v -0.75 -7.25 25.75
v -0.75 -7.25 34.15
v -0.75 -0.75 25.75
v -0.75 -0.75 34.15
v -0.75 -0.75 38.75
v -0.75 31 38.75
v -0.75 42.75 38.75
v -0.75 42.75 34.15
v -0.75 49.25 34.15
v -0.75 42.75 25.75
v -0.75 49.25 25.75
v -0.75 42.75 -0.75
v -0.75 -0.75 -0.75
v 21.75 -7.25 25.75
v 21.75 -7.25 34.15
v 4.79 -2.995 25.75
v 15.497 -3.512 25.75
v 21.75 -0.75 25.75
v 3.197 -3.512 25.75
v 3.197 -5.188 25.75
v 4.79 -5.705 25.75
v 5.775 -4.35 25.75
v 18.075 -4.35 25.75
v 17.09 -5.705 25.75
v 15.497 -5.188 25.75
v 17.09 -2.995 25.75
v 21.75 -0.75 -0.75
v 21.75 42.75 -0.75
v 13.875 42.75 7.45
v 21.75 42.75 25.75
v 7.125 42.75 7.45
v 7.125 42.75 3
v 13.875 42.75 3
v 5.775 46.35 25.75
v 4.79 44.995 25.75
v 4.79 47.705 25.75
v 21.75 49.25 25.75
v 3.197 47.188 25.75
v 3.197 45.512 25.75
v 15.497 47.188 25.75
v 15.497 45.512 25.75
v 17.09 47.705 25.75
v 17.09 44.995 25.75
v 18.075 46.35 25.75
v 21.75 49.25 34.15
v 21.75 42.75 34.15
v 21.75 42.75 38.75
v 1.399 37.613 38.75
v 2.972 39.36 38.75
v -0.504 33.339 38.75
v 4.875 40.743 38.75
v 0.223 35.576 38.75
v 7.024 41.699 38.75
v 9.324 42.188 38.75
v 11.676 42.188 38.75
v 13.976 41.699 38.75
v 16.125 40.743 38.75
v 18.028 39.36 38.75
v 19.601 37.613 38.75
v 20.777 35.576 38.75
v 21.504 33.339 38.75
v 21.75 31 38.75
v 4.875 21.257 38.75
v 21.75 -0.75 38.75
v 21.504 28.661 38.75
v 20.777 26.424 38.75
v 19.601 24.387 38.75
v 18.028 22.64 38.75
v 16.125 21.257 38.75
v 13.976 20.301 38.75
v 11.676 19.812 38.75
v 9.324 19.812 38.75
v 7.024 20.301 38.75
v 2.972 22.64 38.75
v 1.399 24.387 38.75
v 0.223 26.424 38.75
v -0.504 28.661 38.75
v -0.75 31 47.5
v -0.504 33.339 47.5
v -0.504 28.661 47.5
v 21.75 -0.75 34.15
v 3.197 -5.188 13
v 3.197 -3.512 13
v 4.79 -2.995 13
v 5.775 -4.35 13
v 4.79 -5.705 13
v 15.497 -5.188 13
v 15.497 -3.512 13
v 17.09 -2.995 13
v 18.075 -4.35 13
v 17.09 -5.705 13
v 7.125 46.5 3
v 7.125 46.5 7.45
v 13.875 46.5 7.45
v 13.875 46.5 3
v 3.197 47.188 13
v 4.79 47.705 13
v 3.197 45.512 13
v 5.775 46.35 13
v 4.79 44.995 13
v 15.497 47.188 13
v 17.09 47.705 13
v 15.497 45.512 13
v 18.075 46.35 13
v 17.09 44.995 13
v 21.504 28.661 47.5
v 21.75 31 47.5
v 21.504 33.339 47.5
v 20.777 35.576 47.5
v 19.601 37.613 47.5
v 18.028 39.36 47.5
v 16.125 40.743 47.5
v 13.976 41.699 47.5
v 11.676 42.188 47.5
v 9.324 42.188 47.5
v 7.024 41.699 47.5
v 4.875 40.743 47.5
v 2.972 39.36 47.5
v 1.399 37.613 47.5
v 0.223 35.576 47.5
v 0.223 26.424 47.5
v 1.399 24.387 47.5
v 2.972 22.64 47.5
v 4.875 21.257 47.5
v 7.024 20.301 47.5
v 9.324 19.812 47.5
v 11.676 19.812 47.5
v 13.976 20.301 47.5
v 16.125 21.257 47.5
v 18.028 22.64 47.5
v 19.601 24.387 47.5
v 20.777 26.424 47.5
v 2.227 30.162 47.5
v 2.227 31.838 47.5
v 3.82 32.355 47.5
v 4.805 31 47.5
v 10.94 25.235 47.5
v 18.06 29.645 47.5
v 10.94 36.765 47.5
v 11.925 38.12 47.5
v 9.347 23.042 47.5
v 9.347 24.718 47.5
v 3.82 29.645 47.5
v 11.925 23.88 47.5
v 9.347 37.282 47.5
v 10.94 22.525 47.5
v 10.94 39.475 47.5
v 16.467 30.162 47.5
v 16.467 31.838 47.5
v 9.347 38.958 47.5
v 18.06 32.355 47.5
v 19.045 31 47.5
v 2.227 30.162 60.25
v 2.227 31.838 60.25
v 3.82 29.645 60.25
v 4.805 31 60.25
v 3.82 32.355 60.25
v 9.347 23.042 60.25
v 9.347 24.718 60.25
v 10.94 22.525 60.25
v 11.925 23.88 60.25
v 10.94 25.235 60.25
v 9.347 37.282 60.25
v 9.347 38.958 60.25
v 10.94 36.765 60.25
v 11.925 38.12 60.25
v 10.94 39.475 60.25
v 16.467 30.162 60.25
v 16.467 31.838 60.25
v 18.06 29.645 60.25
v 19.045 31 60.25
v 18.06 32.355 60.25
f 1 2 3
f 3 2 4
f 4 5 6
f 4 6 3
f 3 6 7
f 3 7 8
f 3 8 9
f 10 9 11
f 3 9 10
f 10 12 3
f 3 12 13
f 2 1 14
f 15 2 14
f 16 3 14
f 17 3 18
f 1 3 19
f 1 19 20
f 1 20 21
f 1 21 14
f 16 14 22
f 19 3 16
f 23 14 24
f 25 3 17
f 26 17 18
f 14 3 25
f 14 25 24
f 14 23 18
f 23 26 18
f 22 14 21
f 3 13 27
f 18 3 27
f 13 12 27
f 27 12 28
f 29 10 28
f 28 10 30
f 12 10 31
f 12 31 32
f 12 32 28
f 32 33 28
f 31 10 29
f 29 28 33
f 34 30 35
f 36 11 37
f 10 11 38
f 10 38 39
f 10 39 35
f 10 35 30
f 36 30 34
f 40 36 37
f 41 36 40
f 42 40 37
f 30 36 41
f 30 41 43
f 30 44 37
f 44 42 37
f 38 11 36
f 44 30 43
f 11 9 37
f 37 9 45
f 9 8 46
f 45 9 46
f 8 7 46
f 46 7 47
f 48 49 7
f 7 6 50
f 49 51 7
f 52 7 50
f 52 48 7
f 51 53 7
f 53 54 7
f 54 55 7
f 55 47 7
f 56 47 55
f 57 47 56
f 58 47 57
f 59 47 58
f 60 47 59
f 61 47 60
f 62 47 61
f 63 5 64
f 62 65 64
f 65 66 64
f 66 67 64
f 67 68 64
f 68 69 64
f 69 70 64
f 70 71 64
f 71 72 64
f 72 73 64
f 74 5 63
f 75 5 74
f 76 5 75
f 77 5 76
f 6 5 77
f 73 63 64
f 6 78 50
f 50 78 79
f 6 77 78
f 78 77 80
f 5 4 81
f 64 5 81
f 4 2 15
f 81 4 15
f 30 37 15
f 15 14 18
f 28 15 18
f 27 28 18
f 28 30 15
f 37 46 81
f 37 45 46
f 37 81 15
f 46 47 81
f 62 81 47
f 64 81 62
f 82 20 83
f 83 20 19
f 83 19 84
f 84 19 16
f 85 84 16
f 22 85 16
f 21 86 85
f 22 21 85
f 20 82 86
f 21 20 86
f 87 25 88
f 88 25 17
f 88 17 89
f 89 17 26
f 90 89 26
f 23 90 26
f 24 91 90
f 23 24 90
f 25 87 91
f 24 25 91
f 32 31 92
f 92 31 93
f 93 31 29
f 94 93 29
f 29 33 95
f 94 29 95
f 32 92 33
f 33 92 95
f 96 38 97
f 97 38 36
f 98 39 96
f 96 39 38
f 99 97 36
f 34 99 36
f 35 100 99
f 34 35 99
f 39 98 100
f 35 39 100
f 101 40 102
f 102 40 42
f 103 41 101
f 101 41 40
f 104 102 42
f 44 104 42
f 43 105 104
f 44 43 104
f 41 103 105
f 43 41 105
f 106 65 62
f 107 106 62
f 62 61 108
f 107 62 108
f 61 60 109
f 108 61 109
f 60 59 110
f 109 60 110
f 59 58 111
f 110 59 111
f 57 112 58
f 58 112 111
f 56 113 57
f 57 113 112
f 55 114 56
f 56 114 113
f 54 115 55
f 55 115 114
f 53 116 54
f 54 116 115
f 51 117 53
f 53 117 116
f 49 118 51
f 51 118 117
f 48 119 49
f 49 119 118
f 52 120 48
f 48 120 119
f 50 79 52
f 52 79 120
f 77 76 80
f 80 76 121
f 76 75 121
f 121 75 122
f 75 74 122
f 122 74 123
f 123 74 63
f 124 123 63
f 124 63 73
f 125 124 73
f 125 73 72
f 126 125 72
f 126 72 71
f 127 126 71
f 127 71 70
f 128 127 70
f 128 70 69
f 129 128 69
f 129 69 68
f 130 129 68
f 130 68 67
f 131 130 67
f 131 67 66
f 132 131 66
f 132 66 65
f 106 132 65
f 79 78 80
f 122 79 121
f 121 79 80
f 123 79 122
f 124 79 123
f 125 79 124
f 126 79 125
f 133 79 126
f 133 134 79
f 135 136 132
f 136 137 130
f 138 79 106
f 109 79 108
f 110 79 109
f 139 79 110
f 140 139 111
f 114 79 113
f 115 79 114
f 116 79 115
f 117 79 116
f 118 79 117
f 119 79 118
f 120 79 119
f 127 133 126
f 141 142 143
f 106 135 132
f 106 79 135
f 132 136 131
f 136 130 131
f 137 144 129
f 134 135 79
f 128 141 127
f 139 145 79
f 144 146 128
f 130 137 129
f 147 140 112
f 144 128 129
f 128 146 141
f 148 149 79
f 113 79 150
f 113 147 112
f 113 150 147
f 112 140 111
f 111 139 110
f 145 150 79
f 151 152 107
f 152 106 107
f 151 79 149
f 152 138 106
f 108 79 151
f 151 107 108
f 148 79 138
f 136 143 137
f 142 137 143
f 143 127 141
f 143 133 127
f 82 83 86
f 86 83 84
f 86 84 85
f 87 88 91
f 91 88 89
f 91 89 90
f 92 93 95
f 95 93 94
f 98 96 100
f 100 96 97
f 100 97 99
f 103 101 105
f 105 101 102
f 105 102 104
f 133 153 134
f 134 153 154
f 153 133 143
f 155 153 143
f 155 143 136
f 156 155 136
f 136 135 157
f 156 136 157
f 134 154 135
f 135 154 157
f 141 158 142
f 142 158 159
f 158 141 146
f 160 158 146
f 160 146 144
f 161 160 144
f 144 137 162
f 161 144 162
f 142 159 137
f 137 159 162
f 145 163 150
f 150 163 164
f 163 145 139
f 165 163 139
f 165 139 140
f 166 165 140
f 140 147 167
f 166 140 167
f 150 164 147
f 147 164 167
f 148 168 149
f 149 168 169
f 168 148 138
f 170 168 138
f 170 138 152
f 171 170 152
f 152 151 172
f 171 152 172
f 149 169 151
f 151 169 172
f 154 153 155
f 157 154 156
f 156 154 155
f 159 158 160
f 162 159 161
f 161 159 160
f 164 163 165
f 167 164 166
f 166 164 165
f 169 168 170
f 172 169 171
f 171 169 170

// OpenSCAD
//basic motor shape
height=38;
length=42;
thickness=21;

//wings for mounting
wingsheight=5.5;
wingslength=55;
wingsdist=26.5;
boltheadheight=1.4;

//cylinder on top of motor
cylinderheight=(46-38);
cylinderdiam=21;
cylinderdist=31;

//all bolts
boltheight=13.5;
boltdiam=2.1;

//body bolts
boltdist=4.35;

//cylinder bolts
cylboltdist2=3.5;
cylboltdist=7.12;

//hub for wires
hubheight=3.7;
hubwidth=6;
hublength=3;
hubdist=3;

//THIS IS THE TOLERANCE, THIS IS PROBABLY THE ONLY THING YOU WILL NEED TO ADJUST, IF THE HOLES ARE TOO SMALL, RAISE TOLERANCE, IF THEY ARE TOO BIG, LOWER TOLERANCE. IF THE HOLES DON'T LINE UP, THEN START CHANGING OTHER DIMENSIONS.
tolerance=.75;





//defining a bolt
module bolt()
{
	cylinder(boltheight+tolerance, (boltdiam+tolerance)/2, (boltdiam+tolerance)/2, 0);
}



//making the motor
module toleranceMotor()
{
	union()
	{

//basic motor shape
		translate([-tolerance, -tolerance, -tolerance])
		{
			cube([thickness+tolerance*2, length+tolerance*2, height+tolerance*2]);
		}

//wings for mounting
		translate([-tolerance, (-tolerance+((length-wingslength)/2)), wingsdist-tolerance])
		{
			cube([thickness+tolerance*2, wingslength+tolerance*2, wingsheight+tolerance*2+boltheadheight]);
		}

//cylinder on top of motor
		translate([cylinderdiam/2,cylinderdist,height])
		{
			cylinder(cylinderheight+tolerance*2, cylinderdiam/2+tolerance, cylinderdiam/2+tolerance, 0);

		}

//body bolts
		translate([boltdist,-boltdist,(wingsdist-boltheight)])
		{
			bolt();
		}
		
		translate([(thickness-boltdist),-boltdist,(wingsdist-boltheight)])
		{
			bolt();
		}

		translate([boltdist,(length+boltdist),(wingsdist-boltheight)])
		{
			bolt();
		}
		
		translate([(thickness-boltdist),(length+boltdist),(wingsdist-boltheight)])
		{
			bolt();
		}


//cylinder bolts
		translate([thickness/2,cylinderdist-cylboltdist,(height+cylinderheight)])
		{
			bolt();
		}

		translate([thickness/2,cylinderdist+cylboltdist,(height+cylinderheight)])
		{
			bolt();
		}

		translate([thickness/2+cylboltdist,cylinderdist,(height+cylinderheight)])
		{
			bolt();
		}

		translate([thickness/2-cylboltdist,cylinderdist,(height+cylinderheight)])
		{
			bolt();
		}

//hub for wires
		translate([(thickness-(hubwidth+tolerance))/2,(length+tolerance),hubdist])
		{
			cube([hubwidth+tolerance,hublength+tolerance,hubheight+tolerance]);
		}


	}
}


toleranceMotor();
